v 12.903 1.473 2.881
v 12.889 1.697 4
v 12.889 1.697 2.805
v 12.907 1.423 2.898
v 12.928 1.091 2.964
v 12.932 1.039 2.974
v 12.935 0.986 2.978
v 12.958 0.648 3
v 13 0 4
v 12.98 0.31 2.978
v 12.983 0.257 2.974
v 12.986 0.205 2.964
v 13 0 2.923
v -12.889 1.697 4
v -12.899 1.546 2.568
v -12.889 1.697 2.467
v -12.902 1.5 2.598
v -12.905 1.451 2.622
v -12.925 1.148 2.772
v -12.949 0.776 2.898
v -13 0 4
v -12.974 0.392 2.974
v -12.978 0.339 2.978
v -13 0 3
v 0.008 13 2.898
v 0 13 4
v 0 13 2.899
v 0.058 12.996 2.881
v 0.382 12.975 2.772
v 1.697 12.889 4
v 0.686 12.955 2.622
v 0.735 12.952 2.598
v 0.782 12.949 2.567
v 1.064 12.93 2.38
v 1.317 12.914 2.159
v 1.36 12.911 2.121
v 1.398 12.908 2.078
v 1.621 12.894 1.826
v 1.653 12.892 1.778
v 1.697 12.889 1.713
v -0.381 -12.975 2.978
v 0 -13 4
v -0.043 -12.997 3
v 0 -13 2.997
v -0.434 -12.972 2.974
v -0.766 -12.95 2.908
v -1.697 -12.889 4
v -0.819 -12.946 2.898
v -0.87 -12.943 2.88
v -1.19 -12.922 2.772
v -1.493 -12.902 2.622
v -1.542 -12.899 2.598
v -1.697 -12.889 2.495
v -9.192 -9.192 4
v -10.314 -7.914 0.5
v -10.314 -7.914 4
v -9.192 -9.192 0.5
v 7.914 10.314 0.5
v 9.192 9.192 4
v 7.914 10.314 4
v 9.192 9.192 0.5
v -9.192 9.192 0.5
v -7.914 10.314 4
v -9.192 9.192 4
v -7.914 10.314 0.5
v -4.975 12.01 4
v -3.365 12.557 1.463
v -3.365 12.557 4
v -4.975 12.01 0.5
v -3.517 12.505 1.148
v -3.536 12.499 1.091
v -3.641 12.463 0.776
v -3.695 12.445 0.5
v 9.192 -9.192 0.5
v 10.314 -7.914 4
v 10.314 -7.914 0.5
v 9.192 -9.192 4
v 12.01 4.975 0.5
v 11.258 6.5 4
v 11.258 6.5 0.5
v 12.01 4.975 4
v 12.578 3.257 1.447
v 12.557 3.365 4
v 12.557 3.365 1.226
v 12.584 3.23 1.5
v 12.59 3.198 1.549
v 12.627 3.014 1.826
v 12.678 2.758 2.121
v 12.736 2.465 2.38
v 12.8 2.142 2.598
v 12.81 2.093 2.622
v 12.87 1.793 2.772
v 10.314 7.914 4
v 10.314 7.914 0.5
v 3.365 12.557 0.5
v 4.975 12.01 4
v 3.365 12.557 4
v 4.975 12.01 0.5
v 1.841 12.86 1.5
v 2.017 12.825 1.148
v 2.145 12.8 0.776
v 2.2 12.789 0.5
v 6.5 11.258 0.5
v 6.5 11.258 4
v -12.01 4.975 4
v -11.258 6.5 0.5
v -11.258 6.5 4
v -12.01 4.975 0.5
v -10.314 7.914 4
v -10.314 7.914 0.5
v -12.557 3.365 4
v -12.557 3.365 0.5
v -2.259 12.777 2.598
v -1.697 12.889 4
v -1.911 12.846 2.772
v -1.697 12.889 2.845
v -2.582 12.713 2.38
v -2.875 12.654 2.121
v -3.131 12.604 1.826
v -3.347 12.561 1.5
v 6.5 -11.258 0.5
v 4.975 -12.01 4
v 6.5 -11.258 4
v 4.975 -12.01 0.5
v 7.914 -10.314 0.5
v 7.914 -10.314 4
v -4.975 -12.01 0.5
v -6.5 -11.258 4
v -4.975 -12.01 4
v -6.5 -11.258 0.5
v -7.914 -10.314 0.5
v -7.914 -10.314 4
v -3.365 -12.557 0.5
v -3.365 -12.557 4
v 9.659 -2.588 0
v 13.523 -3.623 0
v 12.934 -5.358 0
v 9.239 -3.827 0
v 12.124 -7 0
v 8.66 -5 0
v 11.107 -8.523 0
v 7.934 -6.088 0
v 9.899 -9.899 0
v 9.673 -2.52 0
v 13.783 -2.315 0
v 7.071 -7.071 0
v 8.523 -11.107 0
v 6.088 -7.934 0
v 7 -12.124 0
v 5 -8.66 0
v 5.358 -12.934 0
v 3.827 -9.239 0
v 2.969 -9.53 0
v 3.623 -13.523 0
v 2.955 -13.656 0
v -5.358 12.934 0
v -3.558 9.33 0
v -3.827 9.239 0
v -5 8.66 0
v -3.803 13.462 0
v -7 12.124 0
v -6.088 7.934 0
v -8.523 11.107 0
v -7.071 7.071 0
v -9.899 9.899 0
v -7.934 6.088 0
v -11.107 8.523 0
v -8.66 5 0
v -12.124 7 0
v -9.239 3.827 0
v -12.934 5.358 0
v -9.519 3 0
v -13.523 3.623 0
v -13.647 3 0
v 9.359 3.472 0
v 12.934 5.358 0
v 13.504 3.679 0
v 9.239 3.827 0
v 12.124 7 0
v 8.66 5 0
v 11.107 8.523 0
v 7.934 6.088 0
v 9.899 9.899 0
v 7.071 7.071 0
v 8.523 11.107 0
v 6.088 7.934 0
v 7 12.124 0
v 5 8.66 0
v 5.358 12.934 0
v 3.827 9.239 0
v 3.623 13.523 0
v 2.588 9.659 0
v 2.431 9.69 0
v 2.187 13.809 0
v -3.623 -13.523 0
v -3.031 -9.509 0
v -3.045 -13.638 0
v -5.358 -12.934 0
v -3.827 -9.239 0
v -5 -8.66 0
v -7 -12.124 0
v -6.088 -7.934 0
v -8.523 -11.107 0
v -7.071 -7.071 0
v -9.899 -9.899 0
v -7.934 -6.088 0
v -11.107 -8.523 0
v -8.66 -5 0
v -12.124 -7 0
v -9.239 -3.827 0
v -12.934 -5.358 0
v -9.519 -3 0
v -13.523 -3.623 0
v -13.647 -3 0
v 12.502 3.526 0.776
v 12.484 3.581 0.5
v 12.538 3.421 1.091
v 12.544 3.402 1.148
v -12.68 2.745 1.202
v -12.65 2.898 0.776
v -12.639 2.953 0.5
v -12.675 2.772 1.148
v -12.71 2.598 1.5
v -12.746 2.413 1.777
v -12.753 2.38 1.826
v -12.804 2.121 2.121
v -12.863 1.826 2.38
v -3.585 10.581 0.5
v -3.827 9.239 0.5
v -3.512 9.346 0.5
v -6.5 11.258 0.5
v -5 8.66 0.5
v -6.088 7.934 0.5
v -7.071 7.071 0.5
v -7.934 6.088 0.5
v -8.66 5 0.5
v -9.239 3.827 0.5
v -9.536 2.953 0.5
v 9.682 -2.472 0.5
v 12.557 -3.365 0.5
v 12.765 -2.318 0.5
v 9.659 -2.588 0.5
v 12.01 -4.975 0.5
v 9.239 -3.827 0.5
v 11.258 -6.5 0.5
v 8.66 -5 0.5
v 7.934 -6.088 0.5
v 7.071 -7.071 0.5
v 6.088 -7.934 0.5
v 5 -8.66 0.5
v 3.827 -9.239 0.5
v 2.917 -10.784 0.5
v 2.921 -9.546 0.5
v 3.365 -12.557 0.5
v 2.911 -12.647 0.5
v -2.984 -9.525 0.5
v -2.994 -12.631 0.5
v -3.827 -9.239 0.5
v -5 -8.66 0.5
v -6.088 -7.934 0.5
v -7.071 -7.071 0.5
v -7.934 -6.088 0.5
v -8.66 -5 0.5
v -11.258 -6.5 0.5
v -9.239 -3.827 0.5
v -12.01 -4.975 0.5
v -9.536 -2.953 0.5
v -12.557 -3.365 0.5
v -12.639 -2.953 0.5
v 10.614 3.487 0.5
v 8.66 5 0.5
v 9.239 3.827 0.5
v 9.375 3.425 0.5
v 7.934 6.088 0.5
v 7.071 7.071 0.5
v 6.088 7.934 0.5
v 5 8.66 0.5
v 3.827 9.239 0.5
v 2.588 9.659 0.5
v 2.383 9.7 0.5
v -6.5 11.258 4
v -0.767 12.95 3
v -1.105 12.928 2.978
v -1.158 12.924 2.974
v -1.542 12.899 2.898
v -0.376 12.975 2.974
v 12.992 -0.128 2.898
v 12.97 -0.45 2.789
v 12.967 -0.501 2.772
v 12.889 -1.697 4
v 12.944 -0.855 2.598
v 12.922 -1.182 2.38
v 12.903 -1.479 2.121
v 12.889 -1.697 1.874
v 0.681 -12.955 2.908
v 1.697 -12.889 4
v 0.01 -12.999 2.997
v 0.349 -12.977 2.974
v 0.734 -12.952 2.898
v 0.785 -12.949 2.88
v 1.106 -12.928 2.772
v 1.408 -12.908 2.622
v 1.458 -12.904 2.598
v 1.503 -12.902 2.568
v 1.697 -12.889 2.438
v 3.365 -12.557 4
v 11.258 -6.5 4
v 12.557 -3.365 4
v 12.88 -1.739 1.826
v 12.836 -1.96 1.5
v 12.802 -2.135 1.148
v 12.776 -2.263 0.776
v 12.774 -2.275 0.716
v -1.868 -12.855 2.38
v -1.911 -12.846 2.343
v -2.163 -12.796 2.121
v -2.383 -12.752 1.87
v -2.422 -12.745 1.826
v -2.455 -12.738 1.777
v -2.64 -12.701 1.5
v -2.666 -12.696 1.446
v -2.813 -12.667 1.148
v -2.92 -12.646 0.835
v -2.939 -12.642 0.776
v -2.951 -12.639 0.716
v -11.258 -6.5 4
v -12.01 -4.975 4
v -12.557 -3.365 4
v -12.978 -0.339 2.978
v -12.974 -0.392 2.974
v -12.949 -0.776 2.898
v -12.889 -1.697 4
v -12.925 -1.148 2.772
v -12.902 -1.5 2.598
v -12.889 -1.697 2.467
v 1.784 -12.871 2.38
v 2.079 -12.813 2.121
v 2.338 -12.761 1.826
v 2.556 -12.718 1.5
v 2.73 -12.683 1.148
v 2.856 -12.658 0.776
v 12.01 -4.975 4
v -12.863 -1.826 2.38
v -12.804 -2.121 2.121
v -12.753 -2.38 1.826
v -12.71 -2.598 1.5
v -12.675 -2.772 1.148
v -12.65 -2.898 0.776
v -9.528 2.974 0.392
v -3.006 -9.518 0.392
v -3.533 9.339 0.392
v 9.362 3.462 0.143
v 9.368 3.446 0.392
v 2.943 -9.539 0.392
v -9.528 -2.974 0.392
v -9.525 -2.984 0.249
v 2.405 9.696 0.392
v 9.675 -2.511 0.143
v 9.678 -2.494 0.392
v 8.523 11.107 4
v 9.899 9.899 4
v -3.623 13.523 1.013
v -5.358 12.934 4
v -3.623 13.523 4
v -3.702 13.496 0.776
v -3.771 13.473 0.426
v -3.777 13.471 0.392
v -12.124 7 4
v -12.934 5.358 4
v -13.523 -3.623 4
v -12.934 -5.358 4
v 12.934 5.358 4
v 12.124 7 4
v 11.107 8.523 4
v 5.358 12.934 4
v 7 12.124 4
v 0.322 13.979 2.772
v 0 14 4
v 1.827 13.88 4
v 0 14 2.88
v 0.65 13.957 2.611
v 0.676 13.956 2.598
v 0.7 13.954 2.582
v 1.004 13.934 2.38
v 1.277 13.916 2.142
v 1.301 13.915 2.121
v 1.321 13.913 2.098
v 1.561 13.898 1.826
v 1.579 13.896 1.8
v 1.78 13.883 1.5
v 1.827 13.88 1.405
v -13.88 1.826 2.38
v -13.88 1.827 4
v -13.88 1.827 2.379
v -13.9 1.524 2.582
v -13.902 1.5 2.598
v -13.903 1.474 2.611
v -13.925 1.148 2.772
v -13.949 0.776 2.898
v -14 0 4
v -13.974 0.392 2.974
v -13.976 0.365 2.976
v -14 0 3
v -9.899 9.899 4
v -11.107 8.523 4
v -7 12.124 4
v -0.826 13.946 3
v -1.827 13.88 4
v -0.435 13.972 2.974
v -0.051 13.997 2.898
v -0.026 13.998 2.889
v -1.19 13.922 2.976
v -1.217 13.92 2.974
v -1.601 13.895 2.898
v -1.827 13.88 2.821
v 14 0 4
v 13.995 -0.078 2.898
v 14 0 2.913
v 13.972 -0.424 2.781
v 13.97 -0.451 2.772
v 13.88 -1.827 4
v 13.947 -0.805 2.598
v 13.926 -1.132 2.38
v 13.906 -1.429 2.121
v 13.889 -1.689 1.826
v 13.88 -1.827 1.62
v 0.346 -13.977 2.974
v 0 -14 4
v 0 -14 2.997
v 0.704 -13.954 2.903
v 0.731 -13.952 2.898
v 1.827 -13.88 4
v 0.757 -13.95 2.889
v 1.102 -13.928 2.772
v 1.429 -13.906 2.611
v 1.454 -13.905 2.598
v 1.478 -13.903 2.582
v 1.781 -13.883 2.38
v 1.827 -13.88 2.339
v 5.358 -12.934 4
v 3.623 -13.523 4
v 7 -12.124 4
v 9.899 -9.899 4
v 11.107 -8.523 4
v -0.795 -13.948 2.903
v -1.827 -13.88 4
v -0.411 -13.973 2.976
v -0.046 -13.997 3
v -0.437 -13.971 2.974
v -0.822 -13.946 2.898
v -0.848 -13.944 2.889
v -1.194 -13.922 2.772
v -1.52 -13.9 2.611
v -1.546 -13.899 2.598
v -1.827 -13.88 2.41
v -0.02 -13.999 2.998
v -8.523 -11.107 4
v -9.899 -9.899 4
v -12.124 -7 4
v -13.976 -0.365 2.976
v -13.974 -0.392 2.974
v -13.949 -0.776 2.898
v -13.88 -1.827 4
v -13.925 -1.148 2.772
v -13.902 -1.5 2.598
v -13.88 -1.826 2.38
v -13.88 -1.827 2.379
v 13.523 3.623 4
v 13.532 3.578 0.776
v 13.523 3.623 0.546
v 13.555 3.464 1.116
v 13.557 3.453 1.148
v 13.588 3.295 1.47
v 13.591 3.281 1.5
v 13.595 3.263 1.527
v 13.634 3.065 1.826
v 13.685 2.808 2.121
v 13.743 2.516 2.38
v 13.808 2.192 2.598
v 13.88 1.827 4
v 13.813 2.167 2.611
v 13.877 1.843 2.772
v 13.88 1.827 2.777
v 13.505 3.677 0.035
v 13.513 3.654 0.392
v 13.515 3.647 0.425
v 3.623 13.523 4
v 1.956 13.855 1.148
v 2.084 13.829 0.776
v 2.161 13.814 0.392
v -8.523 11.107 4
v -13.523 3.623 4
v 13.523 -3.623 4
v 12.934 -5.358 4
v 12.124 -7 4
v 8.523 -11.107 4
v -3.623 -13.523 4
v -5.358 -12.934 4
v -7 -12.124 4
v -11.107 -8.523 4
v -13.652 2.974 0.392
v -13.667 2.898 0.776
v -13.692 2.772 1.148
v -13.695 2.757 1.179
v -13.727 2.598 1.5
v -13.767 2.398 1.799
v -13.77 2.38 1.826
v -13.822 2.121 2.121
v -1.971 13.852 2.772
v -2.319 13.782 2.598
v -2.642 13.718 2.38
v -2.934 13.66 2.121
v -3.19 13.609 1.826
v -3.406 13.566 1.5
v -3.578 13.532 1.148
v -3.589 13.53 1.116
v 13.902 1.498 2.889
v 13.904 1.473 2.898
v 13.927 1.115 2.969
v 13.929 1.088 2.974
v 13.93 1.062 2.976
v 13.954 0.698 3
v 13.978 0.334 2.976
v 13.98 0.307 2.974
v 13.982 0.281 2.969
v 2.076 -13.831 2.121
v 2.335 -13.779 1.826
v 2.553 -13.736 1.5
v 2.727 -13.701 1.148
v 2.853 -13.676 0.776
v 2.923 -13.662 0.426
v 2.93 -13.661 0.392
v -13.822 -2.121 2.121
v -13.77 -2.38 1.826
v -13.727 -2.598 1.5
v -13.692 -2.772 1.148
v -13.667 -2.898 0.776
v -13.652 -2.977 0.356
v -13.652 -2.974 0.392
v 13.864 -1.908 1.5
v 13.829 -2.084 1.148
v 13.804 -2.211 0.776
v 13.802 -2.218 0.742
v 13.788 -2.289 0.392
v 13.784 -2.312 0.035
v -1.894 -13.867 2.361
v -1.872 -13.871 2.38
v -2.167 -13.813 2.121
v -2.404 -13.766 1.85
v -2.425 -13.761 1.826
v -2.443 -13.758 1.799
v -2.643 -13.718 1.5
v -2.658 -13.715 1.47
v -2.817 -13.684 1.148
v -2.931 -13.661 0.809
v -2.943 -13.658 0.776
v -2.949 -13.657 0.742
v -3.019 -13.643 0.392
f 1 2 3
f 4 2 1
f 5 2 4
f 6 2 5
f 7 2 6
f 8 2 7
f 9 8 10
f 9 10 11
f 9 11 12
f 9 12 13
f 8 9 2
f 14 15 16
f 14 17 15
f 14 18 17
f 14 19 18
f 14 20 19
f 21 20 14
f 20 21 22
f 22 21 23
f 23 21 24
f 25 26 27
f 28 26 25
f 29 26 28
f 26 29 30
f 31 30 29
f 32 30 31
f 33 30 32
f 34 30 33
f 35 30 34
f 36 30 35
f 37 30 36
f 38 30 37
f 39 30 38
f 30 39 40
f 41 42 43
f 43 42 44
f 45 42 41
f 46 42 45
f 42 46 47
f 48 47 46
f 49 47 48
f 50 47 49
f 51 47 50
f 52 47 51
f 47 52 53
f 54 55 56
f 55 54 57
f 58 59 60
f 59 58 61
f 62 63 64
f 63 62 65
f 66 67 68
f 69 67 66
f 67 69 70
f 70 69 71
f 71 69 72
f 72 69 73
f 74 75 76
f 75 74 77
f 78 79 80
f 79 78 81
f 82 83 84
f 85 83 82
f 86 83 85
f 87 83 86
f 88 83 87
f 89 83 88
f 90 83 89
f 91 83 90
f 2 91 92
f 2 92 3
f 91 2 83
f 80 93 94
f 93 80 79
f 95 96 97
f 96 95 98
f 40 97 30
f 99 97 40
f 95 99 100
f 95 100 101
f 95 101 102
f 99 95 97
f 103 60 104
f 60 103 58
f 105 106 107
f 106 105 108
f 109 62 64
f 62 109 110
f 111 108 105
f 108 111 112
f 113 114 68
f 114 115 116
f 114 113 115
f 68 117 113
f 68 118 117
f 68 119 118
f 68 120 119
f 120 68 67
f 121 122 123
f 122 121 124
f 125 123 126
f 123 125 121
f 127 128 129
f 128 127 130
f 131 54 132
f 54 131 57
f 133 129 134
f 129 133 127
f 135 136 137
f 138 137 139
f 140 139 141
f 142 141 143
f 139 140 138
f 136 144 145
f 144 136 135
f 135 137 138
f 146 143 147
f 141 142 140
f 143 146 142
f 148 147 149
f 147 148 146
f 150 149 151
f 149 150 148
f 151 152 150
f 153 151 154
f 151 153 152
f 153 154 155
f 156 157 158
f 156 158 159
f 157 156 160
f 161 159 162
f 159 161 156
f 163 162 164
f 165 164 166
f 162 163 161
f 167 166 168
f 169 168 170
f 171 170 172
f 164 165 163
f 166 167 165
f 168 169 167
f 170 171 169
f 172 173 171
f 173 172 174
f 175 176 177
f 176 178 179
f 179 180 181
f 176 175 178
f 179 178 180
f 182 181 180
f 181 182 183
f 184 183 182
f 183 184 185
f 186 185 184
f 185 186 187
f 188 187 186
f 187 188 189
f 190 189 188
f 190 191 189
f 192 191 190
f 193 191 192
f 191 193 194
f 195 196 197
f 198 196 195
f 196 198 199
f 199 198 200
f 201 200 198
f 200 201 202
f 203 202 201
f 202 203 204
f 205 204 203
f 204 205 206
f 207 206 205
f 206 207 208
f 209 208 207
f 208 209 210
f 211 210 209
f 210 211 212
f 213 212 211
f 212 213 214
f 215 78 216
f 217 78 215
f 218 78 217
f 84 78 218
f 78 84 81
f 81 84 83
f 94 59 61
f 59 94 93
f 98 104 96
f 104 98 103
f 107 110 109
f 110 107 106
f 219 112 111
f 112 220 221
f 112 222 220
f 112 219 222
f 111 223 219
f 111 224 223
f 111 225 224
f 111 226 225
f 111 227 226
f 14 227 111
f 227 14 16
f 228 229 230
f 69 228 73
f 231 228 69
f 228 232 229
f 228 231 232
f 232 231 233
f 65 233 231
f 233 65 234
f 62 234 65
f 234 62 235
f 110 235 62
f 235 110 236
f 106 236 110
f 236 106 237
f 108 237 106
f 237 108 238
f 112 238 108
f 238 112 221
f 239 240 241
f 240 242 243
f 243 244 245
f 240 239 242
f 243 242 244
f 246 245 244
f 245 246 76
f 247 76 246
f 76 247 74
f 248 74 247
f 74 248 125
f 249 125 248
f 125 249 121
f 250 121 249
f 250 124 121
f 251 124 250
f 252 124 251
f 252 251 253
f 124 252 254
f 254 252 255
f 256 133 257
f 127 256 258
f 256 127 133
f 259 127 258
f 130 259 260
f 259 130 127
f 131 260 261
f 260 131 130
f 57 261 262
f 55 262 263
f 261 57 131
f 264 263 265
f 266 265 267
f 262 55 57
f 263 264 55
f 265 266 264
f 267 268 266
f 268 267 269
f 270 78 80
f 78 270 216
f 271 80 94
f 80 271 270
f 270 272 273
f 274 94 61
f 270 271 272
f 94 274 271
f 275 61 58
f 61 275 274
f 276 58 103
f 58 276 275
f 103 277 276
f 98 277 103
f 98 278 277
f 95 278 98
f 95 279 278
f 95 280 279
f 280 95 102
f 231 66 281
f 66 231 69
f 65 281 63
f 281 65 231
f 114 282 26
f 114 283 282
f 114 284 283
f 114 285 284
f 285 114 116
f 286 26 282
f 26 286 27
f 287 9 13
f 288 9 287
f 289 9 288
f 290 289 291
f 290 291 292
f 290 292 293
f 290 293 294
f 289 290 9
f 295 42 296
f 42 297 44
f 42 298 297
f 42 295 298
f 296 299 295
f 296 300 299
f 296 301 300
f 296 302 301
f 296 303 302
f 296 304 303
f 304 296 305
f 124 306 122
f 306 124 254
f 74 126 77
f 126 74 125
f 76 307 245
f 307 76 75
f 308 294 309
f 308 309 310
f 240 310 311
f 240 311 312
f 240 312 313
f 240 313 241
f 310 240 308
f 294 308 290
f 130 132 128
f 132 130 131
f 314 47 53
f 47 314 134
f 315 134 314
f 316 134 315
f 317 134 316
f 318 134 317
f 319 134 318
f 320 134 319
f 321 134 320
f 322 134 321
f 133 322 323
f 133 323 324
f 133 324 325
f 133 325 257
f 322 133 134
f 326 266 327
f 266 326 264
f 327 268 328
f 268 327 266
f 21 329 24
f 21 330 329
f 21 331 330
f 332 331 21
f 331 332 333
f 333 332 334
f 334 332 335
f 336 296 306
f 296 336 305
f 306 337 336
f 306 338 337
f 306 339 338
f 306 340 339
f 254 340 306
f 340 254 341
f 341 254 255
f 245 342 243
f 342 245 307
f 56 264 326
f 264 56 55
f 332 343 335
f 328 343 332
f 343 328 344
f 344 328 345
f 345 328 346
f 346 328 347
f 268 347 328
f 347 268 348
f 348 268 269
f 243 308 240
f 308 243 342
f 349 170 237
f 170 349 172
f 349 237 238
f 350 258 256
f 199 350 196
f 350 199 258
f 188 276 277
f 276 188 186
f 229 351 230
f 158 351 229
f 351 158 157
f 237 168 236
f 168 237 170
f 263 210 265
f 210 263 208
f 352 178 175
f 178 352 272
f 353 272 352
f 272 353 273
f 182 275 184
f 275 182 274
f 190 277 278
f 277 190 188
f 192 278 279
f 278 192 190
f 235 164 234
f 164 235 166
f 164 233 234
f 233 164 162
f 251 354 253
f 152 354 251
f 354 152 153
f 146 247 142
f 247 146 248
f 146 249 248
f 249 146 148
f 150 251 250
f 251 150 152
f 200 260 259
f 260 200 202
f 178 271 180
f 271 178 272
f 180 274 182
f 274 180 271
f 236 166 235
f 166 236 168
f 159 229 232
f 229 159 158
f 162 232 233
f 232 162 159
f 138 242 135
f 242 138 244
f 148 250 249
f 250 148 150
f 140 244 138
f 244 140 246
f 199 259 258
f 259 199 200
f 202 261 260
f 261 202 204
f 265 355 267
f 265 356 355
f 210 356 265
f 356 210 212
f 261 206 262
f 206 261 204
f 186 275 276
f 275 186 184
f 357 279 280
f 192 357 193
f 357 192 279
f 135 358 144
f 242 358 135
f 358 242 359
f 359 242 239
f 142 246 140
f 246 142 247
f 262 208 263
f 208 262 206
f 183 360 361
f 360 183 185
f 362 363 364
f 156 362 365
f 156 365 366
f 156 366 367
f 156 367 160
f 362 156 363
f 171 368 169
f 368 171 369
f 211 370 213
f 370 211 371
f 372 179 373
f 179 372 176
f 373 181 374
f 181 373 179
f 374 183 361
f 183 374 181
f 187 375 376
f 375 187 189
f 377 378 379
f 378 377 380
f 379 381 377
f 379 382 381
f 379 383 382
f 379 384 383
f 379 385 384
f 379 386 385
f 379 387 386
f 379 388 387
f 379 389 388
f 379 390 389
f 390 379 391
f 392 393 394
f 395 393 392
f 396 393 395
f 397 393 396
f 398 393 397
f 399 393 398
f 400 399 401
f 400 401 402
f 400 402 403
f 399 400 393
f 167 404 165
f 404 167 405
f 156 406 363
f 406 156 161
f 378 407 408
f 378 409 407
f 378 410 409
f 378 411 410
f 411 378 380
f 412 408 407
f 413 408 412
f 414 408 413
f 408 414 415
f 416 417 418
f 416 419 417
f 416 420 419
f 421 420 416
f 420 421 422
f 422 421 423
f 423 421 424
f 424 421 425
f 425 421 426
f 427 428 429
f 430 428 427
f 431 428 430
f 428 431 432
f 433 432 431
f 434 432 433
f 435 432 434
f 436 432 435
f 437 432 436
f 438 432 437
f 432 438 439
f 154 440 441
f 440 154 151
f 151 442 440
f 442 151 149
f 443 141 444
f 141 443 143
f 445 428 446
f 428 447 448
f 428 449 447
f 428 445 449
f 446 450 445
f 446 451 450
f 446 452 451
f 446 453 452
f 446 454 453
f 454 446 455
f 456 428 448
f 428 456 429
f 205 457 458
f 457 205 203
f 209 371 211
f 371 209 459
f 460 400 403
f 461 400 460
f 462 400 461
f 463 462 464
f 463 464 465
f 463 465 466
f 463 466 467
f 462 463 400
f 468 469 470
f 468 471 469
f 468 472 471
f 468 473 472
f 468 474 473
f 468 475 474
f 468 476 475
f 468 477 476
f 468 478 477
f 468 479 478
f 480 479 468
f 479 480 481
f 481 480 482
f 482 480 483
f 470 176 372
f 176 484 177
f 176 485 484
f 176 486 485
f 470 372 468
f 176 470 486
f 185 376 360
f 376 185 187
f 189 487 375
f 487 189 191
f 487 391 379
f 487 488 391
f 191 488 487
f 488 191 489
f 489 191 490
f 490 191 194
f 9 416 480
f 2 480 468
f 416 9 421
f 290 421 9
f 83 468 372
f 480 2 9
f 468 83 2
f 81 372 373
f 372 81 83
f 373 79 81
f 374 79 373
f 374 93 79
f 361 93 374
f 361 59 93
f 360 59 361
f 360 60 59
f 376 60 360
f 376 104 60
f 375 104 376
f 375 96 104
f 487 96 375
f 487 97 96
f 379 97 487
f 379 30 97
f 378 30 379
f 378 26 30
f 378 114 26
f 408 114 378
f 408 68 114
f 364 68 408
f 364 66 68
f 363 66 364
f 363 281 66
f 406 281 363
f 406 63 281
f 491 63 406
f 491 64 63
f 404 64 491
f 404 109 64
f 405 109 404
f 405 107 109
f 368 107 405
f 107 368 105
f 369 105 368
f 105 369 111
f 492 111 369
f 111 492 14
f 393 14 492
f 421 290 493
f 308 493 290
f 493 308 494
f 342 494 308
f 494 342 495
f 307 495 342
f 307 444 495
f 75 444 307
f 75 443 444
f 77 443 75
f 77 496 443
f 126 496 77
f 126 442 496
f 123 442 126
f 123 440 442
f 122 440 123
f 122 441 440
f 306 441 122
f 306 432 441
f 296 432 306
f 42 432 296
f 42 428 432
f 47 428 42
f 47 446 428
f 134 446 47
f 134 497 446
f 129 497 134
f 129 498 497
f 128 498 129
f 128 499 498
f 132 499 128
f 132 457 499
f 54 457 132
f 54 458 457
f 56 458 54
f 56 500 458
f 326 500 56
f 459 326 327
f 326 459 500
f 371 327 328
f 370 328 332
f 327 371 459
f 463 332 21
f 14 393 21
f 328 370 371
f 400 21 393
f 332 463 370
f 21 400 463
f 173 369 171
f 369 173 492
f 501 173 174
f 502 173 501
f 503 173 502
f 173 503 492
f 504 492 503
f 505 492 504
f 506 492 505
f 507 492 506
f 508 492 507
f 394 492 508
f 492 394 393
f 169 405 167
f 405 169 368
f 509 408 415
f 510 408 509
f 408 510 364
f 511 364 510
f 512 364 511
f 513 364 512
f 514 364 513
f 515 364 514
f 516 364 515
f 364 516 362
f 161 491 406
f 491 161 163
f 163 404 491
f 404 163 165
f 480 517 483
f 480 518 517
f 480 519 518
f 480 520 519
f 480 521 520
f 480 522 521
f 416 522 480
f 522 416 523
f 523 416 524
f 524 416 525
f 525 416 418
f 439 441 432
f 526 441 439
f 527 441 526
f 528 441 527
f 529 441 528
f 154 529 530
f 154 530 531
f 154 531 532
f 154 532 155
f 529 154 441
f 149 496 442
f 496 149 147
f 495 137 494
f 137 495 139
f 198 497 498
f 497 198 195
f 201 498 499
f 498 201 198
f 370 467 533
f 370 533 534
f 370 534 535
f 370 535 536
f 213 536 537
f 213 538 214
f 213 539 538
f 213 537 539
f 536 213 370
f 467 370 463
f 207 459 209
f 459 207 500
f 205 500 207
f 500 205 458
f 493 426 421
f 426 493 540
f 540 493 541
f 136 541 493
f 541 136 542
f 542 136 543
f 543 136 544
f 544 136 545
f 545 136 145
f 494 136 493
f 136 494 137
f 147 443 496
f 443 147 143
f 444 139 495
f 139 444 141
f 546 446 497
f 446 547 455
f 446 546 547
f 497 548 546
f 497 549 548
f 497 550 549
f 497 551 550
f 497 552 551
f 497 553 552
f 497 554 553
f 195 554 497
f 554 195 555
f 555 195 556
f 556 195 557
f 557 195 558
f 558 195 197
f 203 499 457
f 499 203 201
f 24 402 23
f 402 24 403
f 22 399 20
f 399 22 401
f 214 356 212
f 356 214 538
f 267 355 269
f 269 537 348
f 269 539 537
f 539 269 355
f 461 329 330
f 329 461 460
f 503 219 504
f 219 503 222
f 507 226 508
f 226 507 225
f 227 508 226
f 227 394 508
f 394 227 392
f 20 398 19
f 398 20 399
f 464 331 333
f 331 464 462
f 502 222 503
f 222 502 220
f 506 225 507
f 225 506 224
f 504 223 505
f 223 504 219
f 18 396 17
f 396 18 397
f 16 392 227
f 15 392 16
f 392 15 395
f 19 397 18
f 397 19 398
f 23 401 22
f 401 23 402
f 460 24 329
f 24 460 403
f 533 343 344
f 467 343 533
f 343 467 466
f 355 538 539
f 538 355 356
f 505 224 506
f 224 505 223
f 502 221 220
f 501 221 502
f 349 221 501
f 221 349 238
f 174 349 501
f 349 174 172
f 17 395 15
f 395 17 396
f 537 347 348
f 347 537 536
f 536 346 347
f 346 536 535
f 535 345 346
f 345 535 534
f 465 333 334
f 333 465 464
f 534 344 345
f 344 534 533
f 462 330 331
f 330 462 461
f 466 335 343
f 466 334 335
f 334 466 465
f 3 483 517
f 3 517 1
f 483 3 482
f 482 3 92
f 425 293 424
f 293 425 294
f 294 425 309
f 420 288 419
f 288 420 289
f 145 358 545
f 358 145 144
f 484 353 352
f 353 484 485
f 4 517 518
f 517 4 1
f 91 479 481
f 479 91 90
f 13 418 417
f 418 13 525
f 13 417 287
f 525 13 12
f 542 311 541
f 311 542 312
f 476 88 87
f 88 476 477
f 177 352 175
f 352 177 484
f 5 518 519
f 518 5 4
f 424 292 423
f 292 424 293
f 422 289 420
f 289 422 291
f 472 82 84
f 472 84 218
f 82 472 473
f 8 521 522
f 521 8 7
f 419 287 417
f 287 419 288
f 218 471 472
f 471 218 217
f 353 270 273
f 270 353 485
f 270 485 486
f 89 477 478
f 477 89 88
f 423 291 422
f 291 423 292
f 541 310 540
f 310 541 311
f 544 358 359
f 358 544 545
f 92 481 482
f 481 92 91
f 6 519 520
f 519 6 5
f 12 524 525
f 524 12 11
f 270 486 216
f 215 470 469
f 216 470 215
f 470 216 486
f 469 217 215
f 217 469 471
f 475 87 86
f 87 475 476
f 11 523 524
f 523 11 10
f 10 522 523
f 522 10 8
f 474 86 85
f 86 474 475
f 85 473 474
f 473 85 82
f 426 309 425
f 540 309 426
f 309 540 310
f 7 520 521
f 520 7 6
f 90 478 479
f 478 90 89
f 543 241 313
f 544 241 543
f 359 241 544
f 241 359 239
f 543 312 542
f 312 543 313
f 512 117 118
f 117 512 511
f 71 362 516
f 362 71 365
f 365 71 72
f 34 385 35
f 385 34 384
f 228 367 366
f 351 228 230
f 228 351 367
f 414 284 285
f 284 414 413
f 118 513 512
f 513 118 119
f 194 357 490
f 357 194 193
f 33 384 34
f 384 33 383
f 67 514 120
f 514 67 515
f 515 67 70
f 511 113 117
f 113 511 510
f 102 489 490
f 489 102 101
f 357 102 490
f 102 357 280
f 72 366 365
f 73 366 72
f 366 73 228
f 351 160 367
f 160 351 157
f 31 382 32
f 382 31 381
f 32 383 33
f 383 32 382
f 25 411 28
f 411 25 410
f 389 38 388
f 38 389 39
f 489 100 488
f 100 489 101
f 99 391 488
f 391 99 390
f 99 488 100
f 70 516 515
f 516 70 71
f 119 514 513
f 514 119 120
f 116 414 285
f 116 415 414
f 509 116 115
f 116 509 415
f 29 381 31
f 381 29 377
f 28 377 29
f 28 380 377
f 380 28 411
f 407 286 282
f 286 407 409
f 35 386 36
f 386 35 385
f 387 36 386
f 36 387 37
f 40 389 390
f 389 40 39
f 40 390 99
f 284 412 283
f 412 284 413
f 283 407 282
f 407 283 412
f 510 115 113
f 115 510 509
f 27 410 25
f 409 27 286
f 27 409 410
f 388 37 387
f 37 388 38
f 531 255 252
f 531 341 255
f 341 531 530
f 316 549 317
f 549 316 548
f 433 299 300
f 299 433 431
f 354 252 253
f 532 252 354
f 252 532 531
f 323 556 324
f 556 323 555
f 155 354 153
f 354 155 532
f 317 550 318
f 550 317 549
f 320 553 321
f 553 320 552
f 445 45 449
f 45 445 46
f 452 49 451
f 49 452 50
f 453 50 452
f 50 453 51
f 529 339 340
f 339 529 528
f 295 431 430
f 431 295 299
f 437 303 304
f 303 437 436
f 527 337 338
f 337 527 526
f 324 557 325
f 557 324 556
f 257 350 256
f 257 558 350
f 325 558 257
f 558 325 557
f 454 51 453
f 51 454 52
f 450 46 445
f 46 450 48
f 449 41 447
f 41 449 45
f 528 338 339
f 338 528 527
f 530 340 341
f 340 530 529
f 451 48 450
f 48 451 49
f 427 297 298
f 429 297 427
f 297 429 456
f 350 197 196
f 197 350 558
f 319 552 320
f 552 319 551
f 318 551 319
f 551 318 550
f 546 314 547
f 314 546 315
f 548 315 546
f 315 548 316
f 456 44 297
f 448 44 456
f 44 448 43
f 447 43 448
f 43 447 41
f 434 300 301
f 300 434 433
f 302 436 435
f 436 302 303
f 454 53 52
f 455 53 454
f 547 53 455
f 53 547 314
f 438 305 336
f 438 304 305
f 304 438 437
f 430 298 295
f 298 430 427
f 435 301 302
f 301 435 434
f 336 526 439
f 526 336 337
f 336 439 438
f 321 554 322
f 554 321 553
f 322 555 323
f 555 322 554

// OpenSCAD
// file: ../build_environments.scad
// build_environments.scad: modules to build level sections
//

module pool(diameter=10.0, wall_height=2.0, step_width=3.0, connections=[])
{
    difference() {
        union() {
        difference() {
            cylinder(h=0.5,r1=diameter+step_width,r2=diameter+step_width,$fn=48);
            translate([0,0,-0.1])
                cylinder(h=0.7,r1=diameter,r2=diameter,$fn=48);
        }
        difference() {
            cylinder(h=wall_height,r1=diameter+step_width+1.0,r2=diameter+step_width+1.0,$fn=48);
            translate([0,0,-0.1])
                cylinder(h=wall_height+0.2,r1=diameter+step_width,r2=diameter+step_width,$fn=48);
        }
        }
    
        for (c = connections)
        {
            rotate([0,90,0]) {
                angle = atan2(c[1],c[0]);
                rotate([-angle,0,0]) {
                    cylinder(h=diameter+5.0,r1=c[2],r2=c[2],$fn=48);
                }
            }
        }
    }
}

module straight(length=10.0, width=2.0, dy1=0.0, dy2=0.0, dz=0.0)
{
    dims = [0, 0, 0, 0, 0, (dz/length)];
    matrix = [
        [ 1, dims[0], dims[1], 0 ],
        [ dims[2], 1, dims[4], 0 ],
        [ dims[5], dims[3], 1, 0 ],
        [ 0, 0, 0, 1 ]
    ];
    multmatrix(matrix)
    difference() {
        translate([dy1,0,0])
        union() {
            rotate([0,90,0]) {
                difference() {
                    cylinder(h=(length-dy1-dy2),r1=width+1.0,r2=width+1.0,$fn=24);
                    translate([0,0,-0.1])
                        cylinder(h=(length-dy1-dy2+0.2),r1=width,r2=width,$fn=24);
                }
                difference() {
                    cylinder(h=1.0,r1=width+2.0,r2=width+2.0,$fn=24);
                    translate([0,0,-0.1])
                        cylinder(h=1.2,r1=width,r2=width,$fn=24);
                }
                translate([0,0,(length-dy1-dy2)-1.0]) {
                    difference() {
                        cylinder(h=1.0,r1=width+2.0,r2=width+2.0,$fn=24);
                        translate([0,0,-0.1])
                            cylinder(h=1.2,r1=width,r2=width,$fn=24);
                    }
                }
            }
        }
        translate([0,0,-(2*width+4.0)/2])
            cube([3*length,3*length,2*width+4.0],center=true);
    }
}

module curve(p0=[0,0], center=[0,0], dir=1, angle=0.0, width=2.0)
{
    radius = sqrt((p0[0]-center[0])*(p0[0]-center[0]) + (p0[1]-center[1])*(p0[1]-center[1]));
    if (dir == 0) {
        difference() {
            rotate([0,0,-90])
            difference() {
                rotate_extrude(angle = angle, convexity = 10, $fn=32)
                    translate([radius, 0, 0])
                        circle(r = width+1.0,$fn=24);
                rotate([0,0,-1.0])
                    rotate_extrude(angle = angle+2.0, convexity = 10, $fn=32)
                        translate([radius, 0, 0])
                            circle(r = width,$fn=24);
            }
            translate([0,0,-(2*width+4.0)/2])
                cube([5*radius,5*radius,2*width+4.0],center=true);
        }
    }
    else {
        difference() {
            rotate([0,0,90])
            difference() {
                rotate_extrude(angle = -angle, convexity = 10, $fn=32)
                    translate([radius, 0, 0])
                        circle(r = width+1.0,$fn=24);
                rotate([0,0,1.0])
                    rotate_extrude(angle = -angle-2.0, convexity = 10, $fn=32)
                        translate([radius, 0, 0])
                            circle(r = width,$fn=24);
            }
            translate([0,0,-(2*width+4.0)/2])
                cube([5*radius,5*radius,2*width+4.0],center=true);
        }
    }

}

// test pool
//pool(diameter=12.0000, wall_height=3.0000, step_width=3.0000, connections=[[0.0000,-26.0000,2.0000], [23.6074,0.0000,2.0000]]);

// test straight, slope
//straight(length=26.0000, width=2.0000, dy1=11.8322, dy2=6.7082, dz=0.0000);
//straight(length=29.1549, width=12.0000, dy1=0.0000, dy2=0.0000, dz=-15.0000);

// test curve
//curve(p0=[23.6074, 0.0000], center=[23.6074, 5.0000], dir=0, angle=60.1011, width=2.0000);
//curve(p0=[33.6426, 12.4219], center=[37.9771, 9.9295], dir=1, angle=120.4627, width=2.0000);
// main file
use <../build_environments.scad>;
pool(diameter=10.0000, wall_height=4.0000, step_width=3.0000, connections=[[-13.0000,0.0000,3.0000], [14.7503,0.7375,3.0000], [-0.7444,12.5678,3.0000], [-0.0463,-14.1131,3.0000]]);
